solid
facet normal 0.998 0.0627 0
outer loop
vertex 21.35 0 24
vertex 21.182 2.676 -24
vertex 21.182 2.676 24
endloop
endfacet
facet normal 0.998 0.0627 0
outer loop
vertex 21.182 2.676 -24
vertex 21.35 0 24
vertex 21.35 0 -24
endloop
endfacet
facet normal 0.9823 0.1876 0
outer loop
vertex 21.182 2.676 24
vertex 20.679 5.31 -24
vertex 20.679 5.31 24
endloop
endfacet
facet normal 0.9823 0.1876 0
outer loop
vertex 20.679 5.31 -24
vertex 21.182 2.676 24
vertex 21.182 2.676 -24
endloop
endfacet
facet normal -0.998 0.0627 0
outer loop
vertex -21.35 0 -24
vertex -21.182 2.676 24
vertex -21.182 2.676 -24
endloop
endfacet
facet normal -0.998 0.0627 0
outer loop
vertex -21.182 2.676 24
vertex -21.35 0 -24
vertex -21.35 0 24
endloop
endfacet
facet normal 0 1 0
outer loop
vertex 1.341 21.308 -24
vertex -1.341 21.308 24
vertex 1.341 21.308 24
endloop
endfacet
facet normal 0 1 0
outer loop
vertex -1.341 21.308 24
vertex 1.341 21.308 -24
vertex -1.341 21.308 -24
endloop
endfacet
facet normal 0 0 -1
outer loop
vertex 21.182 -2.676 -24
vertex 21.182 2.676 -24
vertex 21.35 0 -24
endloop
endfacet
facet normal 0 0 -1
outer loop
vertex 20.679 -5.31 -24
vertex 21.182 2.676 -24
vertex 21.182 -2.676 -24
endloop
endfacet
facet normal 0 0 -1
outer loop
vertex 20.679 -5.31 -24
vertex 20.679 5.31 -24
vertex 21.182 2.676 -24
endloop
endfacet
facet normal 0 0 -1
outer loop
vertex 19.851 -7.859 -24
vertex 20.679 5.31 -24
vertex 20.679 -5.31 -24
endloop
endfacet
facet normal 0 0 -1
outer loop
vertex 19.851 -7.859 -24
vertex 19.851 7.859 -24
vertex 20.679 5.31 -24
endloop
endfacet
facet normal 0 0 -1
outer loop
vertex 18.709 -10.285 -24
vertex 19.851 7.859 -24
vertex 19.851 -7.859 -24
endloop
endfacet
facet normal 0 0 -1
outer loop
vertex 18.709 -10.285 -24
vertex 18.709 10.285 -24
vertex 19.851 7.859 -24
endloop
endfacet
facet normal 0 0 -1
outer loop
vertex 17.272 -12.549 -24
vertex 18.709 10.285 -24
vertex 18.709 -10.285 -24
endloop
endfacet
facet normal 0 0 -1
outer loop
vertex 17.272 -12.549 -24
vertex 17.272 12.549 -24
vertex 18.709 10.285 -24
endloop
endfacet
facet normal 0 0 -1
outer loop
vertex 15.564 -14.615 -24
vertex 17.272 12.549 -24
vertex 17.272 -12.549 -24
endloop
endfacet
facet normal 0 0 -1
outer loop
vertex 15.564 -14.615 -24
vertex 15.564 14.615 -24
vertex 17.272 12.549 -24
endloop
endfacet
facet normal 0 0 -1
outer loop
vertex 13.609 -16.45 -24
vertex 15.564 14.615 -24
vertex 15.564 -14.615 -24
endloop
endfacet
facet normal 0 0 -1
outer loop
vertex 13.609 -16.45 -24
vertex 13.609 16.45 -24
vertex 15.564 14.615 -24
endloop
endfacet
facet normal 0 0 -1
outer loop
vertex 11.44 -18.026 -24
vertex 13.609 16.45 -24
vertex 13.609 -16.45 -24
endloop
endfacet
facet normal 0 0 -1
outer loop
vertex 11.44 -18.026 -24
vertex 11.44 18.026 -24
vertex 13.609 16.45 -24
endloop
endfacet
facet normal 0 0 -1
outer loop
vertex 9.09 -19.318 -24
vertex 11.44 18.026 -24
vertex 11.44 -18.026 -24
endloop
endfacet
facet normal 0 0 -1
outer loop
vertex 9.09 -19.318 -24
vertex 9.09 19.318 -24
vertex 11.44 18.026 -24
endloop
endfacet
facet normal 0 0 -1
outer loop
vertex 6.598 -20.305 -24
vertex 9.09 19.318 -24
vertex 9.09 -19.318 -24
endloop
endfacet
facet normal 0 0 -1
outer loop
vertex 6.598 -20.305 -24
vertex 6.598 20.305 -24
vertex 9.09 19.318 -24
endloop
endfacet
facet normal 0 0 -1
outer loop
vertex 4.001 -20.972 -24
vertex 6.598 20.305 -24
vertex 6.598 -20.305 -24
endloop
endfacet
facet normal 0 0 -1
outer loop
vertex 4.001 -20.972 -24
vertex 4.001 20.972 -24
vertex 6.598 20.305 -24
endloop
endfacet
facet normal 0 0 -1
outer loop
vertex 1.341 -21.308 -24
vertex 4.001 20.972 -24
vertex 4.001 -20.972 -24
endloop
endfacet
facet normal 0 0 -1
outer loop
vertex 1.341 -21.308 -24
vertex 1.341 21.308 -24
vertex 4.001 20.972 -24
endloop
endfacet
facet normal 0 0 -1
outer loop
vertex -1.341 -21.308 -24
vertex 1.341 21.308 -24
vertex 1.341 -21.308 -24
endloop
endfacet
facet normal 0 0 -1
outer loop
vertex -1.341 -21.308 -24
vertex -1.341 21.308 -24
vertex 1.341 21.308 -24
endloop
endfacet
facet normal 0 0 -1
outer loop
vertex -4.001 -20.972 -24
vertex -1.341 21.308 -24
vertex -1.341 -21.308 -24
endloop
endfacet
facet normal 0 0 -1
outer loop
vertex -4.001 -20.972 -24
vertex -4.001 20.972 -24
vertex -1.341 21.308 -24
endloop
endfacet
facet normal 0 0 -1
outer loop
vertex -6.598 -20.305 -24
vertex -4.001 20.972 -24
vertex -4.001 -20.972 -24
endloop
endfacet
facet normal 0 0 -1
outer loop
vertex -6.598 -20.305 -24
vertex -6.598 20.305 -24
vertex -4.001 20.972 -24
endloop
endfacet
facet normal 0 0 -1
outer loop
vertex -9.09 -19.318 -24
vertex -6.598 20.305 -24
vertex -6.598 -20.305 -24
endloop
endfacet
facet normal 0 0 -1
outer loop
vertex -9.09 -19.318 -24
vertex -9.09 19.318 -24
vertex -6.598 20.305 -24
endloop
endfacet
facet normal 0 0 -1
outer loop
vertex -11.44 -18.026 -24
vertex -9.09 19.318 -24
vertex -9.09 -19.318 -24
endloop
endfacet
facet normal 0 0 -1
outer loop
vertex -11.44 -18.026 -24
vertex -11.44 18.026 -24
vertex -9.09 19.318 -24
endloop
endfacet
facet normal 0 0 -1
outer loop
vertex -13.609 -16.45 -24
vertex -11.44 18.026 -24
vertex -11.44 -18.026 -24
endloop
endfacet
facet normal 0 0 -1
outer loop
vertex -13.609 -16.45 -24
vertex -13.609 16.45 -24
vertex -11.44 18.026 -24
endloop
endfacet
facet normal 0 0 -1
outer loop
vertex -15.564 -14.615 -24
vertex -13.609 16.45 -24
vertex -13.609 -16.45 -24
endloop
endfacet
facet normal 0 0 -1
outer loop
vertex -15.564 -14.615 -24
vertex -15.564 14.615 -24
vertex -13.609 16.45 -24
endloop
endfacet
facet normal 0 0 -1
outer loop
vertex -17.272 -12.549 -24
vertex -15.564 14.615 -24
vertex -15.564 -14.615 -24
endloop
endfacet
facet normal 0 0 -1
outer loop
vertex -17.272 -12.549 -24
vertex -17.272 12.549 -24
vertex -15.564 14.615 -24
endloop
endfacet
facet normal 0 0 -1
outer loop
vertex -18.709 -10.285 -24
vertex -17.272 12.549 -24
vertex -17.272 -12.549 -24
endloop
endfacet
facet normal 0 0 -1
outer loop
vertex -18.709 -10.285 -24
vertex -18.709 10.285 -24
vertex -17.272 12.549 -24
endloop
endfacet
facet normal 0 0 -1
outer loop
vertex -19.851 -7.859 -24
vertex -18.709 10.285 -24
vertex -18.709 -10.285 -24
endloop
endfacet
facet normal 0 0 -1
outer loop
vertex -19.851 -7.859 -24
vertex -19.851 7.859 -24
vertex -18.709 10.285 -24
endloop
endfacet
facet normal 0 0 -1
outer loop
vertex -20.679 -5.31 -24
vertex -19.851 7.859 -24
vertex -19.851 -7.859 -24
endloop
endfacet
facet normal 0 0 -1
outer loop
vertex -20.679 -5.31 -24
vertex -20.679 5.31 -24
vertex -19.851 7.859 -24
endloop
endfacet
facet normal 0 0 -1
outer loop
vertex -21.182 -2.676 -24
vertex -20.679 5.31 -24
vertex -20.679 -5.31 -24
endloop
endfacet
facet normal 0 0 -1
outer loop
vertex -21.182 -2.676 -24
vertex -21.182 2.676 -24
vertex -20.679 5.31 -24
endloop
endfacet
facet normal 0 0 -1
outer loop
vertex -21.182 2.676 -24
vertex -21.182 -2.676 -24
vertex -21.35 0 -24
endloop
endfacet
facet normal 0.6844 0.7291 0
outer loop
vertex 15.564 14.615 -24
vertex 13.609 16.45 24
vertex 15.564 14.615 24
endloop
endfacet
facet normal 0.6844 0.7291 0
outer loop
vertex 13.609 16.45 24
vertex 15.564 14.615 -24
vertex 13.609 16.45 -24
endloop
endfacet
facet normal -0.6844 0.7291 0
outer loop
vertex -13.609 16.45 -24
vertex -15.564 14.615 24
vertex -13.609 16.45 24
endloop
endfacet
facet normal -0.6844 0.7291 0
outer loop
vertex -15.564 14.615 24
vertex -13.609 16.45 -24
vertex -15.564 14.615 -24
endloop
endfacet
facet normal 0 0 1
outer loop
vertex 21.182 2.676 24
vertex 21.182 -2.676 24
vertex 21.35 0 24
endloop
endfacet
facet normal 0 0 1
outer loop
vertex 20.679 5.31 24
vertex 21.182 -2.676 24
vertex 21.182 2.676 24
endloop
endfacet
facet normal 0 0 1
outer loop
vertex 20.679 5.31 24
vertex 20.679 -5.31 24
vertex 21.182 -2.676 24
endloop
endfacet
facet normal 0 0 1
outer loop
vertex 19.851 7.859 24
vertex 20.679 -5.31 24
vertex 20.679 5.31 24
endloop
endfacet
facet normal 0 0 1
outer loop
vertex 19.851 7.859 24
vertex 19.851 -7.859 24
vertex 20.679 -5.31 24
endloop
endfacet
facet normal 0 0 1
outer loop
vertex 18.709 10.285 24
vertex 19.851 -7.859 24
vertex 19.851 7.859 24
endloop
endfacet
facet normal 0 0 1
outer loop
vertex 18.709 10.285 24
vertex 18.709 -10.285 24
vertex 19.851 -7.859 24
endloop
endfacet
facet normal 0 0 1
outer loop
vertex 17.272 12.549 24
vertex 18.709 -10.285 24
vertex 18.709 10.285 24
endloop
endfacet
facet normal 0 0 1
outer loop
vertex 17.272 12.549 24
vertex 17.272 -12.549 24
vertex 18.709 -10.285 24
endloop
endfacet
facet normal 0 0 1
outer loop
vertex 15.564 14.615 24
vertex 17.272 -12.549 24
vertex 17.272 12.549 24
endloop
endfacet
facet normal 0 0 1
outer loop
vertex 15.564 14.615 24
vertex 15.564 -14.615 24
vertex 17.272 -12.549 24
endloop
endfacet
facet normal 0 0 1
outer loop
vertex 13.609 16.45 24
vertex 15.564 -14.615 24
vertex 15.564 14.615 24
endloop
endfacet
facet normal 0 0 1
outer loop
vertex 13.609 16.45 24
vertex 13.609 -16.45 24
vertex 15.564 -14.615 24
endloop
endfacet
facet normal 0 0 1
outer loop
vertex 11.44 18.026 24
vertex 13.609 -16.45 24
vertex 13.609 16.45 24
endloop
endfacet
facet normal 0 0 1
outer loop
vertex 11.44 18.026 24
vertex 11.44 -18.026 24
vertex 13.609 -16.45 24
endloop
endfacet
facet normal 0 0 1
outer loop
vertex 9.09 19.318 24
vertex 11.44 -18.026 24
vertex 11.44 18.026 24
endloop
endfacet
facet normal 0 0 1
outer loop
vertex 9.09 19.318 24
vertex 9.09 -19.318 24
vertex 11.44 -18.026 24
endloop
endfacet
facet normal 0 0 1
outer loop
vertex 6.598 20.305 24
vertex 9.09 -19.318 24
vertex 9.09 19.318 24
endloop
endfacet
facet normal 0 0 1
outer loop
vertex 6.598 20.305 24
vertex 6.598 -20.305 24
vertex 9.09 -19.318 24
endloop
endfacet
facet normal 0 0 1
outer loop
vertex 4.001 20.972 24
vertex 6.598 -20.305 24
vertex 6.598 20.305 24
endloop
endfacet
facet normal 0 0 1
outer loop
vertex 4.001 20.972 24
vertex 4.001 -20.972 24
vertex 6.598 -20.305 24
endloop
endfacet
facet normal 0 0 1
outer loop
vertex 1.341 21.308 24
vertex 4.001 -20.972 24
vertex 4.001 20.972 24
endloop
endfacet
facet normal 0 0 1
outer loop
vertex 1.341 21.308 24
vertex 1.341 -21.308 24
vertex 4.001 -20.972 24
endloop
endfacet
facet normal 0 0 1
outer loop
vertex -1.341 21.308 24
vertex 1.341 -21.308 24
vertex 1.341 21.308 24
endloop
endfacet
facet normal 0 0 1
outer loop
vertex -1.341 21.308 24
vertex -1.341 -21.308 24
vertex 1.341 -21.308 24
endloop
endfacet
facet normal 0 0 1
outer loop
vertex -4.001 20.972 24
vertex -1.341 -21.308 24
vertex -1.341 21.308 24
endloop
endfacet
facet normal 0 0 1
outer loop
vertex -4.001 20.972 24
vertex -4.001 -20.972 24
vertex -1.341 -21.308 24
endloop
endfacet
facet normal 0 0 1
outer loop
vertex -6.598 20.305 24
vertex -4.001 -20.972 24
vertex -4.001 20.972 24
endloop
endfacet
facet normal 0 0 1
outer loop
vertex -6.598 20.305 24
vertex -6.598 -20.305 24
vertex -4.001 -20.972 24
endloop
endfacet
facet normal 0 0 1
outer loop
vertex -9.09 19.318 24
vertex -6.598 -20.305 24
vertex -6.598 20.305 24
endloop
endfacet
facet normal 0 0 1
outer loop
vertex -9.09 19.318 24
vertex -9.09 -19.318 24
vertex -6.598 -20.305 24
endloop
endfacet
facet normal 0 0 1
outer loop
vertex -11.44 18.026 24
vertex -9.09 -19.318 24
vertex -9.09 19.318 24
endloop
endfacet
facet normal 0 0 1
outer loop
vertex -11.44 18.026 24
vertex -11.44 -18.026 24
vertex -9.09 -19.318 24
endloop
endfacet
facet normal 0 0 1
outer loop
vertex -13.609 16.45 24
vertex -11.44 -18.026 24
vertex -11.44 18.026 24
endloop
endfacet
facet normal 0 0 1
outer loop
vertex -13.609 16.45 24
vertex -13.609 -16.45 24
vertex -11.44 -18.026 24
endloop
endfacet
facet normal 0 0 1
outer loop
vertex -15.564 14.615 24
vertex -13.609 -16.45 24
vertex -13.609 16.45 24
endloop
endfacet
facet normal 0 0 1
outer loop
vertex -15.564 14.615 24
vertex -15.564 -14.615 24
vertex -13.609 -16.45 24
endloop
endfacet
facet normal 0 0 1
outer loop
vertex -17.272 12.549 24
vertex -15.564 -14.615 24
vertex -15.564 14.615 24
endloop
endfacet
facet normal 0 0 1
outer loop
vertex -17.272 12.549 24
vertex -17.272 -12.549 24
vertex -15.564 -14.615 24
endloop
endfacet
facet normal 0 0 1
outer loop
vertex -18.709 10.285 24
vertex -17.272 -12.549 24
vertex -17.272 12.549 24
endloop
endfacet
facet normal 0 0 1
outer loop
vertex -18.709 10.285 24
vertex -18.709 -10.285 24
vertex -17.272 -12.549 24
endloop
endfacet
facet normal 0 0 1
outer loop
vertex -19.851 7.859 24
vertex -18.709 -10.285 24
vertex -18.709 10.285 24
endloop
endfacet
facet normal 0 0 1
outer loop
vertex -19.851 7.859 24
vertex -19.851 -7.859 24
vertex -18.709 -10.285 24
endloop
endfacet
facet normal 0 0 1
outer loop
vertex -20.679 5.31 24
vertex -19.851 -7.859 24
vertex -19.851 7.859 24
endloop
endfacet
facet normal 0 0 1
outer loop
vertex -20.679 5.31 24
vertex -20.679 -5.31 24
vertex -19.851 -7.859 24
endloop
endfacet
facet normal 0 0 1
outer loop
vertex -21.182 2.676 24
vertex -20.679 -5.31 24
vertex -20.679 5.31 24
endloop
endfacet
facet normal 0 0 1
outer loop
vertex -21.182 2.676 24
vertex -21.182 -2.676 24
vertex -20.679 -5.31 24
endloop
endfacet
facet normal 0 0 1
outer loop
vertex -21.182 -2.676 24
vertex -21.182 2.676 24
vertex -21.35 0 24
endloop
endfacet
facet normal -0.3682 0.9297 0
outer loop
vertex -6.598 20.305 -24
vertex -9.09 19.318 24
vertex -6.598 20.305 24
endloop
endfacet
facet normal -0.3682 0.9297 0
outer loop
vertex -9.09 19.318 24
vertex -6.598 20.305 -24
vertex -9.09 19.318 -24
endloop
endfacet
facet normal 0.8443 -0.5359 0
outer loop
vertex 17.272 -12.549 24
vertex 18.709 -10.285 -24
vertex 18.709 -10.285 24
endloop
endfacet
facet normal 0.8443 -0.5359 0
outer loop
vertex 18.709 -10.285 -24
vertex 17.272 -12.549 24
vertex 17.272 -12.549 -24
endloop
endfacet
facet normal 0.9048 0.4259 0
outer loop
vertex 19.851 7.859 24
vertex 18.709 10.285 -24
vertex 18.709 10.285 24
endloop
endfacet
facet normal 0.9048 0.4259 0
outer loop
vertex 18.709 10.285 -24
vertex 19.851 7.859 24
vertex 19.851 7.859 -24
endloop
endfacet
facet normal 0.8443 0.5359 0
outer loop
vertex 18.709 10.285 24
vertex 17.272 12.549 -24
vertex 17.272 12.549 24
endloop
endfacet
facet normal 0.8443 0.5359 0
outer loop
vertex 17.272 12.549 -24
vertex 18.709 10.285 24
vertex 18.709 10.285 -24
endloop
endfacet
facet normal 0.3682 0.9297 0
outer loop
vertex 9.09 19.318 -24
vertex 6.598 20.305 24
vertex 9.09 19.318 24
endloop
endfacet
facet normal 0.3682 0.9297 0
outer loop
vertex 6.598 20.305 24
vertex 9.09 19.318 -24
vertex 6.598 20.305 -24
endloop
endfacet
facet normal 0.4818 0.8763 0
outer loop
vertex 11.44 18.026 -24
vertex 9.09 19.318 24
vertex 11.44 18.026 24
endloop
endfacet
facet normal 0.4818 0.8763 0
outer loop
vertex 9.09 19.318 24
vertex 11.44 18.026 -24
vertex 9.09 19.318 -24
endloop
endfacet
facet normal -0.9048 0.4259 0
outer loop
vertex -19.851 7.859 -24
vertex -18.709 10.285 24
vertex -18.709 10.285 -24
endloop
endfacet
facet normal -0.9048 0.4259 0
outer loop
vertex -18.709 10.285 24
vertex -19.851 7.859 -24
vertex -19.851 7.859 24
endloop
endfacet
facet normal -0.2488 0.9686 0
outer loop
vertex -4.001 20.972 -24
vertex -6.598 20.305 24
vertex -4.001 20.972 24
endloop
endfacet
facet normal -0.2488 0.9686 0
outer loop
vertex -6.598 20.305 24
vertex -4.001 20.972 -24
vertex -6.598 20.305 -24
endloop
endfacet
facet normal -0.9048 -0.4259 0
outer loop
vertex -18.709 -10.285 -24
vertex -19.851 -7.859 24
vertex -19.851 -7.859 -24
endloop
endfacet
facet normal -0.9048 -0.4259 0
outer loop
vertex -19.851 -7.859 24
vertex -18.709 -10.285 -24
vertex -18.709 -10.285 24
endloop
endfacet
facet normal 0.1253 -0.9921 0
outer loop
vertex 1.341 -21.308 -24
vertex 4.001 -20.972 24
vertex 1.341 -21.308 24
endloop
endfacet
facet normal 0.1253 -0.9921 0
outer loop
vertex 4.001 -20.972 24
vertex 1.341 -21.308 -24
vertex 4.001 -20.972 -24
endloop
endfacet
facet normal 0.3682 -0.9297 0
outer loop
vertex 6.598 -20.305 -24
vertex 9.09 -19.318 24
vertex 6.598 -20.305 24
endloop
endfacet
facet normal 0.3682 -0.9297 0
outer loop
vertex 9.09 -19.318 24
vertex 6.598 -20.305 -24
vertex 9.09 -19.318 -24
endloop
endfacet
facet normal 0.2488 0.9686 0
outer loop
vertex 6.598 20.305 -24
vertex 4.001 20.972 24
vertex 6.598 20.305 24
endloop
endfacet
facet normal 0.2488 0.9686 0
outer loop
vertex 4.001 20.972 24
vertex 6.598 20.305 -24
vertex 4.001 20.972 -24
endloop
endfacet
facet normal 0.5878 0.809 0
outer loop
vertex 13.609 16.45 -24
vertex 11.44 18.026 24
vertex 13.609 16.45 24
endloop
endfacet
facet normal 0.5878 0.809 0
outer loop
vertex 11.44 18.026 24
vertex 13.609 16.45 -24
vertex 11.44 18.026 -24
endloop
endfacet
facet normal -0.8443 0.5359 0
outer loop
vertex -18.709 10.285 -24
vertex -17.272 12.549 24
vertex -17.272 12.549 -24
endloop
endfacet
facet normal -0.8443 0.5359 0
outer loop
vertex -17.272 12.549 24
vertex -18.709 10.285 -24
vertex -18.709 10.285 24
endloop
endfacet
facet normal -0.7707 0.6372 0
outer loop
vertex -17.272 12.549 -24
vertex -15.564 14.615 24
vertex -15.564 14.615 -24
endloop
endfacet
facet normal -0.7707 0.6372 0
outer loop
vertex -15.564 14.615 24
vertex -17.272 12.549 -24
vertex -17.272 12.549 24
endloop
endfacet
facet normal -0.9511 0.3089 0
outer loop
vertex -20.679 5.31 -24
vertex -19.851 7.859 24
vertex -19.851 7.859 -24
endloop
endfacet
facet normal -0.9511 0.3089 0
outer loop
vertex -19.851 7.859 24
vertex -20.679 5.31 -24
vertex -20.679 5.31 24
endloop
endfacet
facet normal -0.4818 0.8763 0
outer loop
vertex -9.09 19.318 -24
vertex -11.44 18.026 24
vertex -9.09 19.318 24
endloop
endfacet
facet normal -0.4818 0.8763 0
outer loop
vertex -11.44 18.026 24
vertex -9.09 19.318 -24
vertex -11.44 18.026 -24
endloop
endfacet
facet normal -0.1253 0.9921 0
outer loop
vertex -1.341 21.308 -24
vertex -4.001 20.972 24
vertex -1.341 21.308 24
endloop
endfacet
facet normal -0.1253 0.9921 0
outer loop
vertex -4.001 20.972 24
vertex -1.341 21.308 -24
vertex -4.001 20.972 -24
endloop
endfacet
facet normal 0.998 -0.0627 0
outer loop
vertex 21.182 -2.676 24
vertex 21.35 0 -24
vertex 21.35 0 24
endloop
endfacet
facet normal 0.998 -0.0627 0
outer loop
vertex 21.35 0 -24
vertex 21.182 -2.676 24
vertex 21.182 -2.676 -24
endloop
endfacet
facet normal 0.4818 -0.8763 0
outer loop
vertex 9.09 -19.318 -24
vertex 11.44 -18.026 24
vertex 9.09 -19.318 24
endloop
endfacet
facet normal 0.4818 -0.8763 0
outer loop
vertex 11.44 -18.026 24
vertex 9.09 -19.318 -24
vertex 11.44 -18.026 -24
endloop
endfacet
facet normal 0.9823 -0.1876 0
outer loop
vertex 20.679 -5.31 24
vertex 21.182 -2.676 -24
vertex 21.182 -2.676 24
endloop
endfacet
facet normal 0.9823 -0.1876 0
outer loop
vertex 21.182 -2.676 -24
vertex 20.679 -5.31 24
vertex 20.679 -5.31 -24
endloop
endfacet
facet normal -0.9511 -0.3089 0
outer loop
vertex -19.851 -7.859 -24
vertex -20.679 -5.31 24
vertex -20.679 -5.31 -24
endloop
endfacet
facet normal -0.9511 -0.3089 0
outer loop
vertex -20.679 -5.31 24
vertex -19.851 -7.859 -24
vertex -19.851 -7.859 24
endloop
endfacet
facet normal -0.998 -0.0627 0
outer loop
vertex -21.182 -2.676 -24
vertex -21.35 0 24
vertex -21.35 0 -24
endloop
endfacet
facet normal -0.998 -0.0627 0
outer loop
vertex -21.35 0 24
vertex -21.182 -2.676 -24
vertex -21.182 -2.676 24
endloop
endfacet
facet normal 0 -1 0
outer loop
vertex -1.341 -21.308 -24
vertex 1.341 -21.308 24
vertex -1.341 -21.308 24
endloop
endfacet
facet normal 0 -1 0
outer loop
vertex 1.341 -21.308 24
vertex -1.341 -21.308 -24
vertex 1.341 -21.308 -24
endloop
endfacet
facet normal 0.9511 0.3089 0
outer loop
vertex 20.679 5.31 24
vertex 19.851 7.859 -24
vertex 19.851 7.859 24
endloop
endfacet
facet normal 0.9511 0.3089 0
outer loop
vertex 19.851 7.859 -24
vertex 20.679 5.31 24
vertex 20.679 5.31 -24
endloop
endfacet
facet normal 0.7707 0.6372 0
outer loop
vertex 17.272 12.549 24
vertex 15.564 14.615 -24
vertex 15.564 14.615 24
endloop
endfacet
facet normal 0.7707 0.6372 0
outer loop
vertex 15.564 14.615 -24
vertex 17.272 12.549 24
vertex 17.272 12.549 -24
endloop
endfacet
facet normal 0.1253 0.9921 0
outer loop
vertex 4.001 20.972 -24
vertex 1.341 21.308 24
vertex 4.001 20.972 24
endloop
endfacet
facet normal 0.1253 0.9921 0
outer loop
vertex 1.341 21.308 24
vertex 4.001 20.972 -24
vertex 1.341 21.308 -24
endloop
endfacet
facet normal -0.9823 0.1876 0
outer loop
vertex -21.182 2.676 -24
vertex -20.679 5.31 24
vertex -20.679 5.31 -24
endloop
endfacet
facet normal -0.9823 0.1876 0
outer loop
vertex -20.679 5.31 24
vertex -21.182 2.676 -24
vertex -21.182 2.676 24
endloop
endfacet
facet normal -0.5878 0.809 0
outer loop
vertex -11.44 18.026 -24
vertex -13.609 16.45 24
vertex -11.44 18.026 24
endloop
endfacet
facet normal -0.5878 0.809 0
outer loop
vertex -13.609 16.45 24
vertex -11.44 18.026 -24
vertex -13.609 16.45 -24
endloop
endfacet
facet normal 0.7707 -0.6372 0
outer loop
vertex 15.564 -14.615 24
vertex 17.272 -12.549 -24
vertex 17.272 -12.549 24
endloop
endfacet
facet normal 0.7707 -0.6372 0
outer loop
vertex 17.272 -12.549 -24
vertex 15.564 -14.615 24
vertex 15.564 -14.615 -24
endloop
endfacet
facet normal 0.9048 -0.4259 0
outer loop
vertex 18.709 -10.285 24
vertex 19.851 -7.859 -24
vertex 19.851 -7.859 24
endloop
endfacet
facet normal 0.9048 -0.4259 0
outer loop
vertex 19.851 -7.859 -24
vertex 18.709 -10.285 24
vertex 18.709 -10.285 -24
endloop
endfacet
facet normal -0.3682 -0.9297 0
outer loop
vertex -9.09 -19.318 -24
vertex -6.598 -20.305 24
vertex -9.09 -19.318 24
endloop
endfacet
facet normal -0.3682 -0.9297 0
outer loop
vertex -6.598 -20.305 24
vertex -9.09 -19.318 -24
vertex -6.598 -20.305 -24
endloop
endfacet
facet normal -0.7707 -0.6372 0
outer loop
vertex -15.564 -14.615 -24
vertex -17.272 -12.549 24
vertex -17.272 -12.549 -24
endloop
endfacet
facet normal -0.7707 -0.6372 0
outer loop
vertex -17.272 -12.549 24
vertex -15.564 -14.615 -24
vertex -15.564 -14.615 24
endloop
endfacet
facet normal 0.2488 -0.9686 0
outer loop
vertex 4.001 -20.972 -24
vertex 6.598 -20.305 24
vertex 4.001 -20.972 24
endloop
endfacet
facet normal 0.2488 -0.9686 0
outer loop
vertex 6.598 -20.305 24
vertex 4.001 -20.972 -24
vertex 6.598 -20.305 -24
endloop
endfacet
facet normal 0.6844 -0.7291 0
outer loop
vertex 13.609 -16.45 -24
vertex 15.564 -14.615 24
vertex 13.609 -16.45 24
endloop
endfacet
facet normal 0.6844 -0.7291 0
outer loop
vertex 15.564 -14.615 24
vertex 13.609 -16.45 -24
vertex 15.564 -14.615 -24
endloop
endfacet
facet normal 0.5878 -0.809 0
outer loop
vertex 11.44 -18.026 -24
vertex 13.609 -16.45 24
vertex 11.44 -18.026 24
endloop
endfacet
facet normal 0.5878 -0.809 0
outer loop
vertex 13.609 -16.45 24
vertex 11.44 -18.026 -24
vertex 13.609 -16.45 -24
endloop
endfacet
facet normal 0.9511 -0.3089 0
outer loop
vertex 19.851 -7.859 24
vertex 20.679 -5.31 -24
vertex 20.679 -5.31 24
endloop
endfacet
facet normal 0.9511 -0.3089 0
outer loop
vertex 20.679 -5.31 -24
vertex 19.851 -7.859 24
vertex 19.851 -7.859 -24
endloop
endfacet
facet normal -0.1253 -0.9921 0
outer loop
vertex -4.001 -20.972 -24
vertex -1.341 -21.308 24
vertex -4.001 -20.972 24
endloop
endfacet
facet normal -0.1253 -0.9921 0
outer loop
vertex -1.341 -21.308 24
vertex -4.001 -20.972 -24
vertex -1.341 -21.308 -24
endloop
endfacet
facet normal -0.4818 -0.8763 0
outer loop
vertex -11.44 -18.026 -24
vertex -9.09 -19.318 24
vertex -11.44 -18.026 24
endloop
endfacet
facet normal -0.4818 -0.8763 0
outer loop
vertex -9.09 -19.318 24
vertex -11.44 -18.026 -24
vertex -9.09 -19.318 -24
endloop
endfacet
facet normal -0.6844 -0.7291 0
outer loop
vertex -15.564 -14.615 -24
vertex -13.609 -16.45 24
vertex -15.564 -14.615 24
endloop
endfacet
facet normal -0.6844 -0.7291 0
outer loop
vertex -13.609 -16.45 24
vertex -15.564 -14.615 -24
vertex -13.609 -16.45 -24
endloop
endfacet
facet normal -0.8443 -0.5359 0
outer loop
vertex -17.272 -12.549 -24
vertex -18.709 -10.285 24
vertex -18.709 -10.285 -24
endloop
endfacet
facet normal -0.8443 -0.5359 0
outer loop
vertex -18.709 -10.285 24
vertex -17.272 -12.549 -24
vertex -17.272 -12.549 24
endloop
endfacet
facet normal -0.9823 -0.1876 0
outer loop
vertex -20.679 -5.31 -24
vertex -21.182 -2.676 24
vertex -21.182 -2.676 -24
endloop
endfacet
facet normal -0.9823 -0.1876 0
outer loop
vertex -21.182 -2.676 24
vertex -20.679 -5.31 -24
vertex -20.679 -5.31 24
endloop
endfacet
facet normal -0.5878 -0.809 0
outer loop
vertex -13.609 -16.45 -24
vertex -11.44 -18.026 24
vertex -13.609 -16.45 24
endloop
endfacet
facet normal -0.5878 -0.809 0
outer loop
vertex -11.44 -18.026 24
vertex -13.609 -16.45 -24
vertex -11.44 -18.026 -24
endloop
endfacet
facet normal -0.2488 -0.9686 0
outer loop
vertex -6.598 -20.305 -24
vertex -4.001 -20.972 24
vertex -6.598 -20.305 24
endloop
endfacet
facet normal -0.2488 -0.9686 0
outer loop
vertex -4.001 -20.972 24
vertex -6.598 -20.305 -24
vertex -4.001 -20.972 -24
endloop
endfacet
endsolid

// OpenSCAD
$fn = 50;


difference() {
	union() {
		translate(v = [0, 0, -24.0000000000]) {
			cylinder(h = 48, r = 21.3500000000);
		}
	}
	union() {
		translate(v = [0, 0, -100.0000000000]) {
			cylinder(h = 200, r = 0);
		}
	}
}
